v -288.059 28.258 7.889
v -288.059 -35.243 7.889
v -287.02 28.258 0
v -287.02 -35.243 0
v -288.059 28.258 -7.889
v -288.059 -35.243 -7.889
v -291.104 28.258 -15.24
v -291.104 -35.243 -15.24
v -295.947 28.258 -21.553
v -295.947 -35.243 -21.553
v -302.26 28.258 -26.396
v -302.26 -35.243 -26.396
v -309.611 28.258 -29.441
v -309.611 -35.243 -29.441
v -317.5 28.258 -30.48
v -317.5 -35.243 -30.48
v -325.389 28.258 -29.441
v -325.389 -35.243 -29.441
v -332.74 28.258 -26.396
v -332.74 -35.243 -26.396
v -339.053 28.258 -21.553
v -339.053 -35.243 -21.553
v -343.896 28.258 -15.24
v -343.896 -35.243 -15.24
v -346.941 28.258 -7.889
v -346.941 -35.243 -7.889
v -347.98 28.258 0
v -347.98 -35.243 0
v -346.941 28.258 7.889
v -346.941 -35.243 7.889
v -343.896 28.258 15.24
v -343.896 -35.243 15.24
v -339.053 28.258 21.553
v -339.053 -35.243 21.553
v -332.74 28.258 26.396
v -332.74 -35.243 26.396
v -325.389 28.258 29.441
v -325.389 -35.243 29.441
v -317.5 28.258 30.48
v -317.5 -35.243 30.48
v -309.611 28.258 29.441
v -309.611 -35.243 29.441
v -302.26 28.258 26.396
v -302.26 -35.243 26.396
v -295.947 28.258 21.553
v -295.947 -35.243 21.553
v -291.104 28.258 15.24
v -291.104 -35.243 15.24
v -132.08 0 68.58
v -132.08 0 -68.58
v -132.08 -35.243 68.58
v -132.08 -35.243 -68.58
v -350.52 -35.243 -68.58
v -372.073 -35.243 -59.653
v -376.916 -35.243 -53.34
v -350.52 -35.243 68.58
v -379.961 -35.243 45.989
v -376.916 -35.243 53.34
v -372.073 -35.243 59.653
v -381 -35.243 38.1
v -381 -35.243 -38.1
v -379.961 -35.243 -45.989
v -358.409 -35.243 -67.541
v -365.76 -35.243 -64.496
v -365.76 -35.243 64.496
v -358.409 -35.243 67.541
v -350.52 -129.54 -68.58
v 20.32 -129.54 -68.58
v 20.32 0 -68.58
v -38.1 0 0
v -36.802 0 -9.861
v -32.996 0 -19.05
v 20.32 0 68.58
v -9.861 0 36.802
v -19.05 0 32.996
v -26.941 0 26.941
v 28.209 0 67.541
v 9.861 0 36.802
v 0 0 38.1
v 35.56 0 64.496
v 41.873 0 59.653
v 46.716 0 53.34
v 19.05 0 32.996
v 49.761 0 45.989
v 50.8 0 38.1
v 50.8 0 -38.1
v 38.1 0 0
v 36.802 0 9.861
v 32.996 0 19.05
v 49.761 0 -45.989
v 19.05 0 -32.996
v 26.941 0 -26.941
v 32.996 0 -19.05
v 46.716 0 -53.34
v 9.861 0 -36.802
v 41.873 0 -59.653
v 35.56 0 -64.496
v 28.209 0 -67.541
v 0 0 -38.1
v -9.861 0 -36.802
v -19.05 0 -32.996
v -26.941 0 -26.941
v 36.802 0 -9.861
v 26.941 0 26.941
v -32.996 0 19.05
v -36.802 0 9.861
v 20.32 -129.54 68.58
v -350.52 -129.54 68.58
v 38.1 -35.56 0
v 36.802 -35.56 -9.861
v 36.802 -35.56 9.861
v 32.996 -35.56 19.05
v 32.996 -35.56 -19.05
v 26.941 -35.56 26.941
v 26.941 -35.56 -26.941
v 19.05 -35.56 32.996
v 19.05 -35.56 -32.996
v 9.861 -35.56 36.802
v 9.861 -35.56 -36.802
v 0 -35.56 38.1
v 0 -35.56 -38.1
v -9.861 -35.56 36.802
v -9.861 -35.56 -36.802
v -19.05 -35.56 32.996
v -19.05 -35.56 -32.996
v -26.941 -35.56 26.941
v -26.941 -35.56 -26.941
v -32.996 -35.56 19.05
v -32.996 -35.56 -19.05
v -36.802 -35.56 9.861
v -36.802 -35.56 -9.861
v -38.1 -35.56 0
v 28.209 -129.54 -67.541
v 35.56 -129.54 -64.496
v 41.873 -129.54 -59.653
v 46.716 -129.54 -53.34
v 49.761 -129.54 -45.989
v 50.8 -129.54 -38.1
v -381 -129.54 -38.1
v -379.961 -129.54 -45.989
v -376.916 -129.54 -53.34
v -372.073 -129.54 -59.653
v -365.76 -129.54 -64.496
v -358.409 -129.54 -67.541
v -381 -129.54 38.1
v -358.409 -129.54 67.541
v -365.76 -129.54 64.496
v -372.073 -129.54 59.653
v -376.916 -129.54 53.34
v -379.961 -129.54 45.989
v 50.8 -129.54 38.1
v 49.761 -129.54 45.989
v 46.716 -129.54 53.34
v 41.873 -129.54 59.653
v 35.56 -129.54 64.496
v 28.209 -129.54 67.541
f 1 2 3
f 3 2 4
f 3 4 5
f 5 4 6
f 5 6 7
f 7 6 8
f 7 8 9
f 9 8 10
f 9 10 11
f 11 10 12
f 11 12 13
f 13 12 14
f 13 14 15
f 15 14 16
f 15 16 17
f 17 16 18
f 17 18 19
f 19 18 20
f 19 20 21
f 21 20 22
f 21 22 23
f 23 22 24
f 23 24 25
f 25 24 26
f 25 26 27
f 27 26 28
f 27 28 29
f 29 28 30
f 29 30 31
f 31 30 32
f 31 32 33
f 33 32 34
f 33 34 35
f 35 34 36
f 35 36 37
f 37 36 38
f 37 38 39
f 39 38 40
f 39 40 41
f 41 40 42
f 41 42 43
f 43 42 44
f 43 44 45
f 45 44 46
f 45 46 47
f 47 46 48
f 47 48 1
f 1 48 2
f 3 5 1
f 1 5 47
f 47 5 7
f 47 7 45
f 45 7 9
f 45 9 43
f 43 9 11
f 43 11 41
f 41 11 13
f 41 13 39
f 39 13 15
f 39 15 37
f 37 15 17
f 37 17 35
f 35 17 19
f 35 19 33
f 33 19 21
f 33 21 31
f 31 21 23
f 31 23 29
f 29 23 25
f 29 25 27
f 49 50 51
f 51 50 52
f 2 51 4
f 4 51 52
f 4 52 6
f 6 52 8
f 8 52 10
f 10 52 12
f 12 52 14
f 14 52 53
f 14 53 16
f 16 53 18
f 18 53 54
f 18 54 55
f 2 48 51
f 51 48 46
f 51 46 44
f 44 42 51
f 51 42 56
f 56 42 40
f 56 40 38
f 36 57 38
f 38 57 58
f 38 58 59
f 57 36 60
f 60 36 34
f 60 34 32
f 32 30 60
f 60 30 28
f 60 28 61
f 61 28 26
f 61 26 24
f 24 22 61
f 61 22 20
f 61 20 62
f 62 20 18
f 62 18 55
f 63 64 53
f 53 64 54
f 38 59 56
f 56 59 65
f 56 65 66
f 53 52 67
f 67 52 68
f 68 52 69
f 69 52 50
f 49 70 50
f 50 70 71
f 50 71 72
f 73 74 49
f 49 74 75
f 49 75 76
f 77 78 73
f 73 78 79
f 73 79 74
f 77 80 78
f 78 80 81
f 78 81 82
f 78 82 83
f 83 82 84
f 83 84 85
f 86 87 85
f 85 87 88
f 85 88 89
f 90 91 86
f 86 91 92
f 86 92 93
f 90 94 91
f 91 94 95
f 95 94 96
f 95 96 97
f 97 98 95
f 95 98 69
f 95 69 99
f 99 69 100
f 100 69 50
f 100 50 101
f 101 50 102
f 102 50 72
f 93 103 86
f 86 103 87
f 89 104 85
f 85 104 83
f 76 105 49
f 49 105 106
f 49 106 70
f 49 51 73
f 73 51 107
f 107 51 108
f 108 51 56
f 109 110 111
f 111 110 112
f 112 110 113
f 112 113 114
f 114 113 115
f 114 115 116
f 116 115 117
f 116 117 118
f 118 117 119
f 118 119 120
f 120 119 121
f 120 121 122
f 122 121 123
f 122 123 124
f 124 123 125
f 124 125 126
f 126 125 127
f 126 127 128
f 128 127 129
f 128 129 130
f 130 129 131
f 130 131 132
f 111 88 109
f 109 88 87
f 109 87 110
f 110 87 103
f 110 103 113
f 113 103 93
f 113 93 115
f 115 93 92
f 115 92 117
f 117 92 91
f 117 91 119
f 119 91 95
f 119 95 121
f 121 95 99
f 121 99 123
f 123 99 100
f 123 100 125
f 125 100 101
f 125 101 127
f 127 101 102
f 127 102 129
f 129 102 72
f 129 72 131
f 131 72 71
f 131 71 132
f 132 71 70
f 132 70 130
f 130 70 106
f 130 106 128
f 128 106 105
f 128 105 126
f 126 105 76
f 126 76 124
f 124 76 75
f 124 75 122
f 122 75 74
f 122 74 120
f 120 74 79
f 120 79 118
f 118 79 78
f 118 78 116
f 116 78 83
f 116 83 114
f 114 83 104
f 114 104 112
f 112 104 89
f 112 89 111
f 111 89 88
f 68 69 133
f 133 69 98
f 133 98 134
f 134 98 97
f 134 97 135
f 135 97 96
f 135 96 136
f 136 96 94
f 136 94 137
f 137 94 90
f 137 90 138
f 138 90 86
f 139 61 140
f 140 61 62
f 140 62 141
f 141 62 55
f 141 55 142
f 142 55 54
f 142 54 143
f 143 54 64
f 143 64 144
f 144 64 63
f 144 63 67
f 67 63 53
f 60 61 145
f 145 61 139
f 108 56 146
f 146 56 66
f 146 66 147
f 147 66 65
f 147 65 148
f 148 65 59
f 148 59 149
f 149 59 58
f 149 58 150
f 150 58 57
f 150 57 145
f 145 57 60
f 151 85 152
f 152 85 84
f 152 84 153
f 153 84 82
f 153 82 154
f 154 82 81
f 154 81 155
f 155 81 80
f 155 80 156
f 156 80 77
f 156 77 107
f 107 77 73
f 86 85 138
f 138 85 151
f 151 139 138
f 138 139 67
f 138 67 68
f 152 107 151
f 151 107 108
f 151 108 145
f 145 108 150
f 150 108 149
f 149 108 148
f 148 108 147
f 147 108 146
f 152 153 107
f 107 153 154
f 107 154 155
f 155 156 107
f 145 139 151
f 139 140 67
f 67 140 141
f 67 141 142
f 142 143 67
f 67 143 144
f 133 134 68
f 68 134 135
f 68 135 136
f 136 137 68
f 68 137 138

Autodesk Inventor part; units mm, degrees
ref_plane "YZ Plane" through (0, 0, 0) normal (1, 0, 0) x (0, 1, 0)
ref_plane "XZ Plane" through (0, 0, 0) normal (0, 1, 0) x (-1, 0, 0)
ref_plane "XY Plane" through (0, 0, 0) normal (0, 0, 1) x (1, 0, 0)
sketch "Sketch1" plane through (0, 0, 0) normal (0, 1, 0) x (-1, 0, 0)
  circle A0 centre (0, 0) radius 38.1
  line L0 (-20.32, 68.58) -> (350.52, 68.58)
  line L1 (381, 38.1) -> (381, -38.1)
  line L2 (350.52, -68.58) -> (-20.32, -68.58)
  line L3 (-50.8, -38.1) -> (-50.8, 38.1)
  arc A1 (-20.32, 68.58) -> (-50.8, 38.1) centre (-20.32, 38.1) ccw
  arc A2 (-50.8, -38.1) -> (-20.32, -68.58) centre (-20.32, -38.1) ccw
  arc A3 (381, 38.1) -> (350.52, 68.58) centre (350.52, 38.1) ccw
  arc A4 (350.52, -68.58) -> (381, -38.1) centre (350.52, -38.1) ccw
  point P0 (-50.8, 68.58)
  point P1 (381, -68.58)
  point P2 (-50.8, -68.58)
  dimension "d0" = 76.2
  dimension "d1" = 137.16
  dimension "d2" = 431.8
  dimension "d3" = 50.8
  dimension "d4" = 68.58
  dimension "d5" = 30.48
extrude "Extrusion1" add sketch "Sketch1" against normal blind 129.54
sketch "Sketch2" plane through (0, -129.54, 0) normal (0, -1, 0) x (1, 0, 0)
  circle A0 centre (0, 0) radius 38.1
  dimension "d17" = 76.2
extrude "Extrusion2" add sketch "Sketch2" against normal blind 93.98
sketch "Sketch3" plane through (0, 0, 0) normal (0, 1, 0) x (1, 0, 0)
  line L0 (50.8, 38.1) -> (50.8, -38.1) projected
  line L1 (50.8, 0) -> (-132.08, 0)
  line L2 (20.32, -68.58) -> (-350.52, -68.58) projected
  line L3 (-132.08, -68.58) -> (-434.975, -68.58)
  line L4 (-434.975, -68.58) -> (-434.975, 68.58)
  line L5 (-434.975, 68.58) -> (-132.08, 68.58)
  line L6 (-132.08, 68.58) -> (-132.08, -68.58)
  point P0 (0, 0)
  dimension "d10" = 182.88
extrude "Extrusion3" cut sketch "Sketch3" against normal blind 35.2425
sketch "Sketch4" plane through (0, -35.2425, 0) normal (0, 1, 0) x (1, 0, 0)
  line L0 (-381, -38.1) -> (-381, 38.1) projected
  line L1 (-381, 0) -> (-328.6125, 0)
  line L2 (-381, 0) -> (-317.5, 0)
  circle A0 centre (-317.5, 0) radius 30.48
  point P0 (0, 0)
  dimension "d14" = 60.96
  dimension "d18" = 317.5
extrude "Extrusion4" add sketch "Sketch4" along normal blind 63.5
equation "\"d4\" = 0.5 * d1"
properties part number "Shoulder2 Link-lrg"
